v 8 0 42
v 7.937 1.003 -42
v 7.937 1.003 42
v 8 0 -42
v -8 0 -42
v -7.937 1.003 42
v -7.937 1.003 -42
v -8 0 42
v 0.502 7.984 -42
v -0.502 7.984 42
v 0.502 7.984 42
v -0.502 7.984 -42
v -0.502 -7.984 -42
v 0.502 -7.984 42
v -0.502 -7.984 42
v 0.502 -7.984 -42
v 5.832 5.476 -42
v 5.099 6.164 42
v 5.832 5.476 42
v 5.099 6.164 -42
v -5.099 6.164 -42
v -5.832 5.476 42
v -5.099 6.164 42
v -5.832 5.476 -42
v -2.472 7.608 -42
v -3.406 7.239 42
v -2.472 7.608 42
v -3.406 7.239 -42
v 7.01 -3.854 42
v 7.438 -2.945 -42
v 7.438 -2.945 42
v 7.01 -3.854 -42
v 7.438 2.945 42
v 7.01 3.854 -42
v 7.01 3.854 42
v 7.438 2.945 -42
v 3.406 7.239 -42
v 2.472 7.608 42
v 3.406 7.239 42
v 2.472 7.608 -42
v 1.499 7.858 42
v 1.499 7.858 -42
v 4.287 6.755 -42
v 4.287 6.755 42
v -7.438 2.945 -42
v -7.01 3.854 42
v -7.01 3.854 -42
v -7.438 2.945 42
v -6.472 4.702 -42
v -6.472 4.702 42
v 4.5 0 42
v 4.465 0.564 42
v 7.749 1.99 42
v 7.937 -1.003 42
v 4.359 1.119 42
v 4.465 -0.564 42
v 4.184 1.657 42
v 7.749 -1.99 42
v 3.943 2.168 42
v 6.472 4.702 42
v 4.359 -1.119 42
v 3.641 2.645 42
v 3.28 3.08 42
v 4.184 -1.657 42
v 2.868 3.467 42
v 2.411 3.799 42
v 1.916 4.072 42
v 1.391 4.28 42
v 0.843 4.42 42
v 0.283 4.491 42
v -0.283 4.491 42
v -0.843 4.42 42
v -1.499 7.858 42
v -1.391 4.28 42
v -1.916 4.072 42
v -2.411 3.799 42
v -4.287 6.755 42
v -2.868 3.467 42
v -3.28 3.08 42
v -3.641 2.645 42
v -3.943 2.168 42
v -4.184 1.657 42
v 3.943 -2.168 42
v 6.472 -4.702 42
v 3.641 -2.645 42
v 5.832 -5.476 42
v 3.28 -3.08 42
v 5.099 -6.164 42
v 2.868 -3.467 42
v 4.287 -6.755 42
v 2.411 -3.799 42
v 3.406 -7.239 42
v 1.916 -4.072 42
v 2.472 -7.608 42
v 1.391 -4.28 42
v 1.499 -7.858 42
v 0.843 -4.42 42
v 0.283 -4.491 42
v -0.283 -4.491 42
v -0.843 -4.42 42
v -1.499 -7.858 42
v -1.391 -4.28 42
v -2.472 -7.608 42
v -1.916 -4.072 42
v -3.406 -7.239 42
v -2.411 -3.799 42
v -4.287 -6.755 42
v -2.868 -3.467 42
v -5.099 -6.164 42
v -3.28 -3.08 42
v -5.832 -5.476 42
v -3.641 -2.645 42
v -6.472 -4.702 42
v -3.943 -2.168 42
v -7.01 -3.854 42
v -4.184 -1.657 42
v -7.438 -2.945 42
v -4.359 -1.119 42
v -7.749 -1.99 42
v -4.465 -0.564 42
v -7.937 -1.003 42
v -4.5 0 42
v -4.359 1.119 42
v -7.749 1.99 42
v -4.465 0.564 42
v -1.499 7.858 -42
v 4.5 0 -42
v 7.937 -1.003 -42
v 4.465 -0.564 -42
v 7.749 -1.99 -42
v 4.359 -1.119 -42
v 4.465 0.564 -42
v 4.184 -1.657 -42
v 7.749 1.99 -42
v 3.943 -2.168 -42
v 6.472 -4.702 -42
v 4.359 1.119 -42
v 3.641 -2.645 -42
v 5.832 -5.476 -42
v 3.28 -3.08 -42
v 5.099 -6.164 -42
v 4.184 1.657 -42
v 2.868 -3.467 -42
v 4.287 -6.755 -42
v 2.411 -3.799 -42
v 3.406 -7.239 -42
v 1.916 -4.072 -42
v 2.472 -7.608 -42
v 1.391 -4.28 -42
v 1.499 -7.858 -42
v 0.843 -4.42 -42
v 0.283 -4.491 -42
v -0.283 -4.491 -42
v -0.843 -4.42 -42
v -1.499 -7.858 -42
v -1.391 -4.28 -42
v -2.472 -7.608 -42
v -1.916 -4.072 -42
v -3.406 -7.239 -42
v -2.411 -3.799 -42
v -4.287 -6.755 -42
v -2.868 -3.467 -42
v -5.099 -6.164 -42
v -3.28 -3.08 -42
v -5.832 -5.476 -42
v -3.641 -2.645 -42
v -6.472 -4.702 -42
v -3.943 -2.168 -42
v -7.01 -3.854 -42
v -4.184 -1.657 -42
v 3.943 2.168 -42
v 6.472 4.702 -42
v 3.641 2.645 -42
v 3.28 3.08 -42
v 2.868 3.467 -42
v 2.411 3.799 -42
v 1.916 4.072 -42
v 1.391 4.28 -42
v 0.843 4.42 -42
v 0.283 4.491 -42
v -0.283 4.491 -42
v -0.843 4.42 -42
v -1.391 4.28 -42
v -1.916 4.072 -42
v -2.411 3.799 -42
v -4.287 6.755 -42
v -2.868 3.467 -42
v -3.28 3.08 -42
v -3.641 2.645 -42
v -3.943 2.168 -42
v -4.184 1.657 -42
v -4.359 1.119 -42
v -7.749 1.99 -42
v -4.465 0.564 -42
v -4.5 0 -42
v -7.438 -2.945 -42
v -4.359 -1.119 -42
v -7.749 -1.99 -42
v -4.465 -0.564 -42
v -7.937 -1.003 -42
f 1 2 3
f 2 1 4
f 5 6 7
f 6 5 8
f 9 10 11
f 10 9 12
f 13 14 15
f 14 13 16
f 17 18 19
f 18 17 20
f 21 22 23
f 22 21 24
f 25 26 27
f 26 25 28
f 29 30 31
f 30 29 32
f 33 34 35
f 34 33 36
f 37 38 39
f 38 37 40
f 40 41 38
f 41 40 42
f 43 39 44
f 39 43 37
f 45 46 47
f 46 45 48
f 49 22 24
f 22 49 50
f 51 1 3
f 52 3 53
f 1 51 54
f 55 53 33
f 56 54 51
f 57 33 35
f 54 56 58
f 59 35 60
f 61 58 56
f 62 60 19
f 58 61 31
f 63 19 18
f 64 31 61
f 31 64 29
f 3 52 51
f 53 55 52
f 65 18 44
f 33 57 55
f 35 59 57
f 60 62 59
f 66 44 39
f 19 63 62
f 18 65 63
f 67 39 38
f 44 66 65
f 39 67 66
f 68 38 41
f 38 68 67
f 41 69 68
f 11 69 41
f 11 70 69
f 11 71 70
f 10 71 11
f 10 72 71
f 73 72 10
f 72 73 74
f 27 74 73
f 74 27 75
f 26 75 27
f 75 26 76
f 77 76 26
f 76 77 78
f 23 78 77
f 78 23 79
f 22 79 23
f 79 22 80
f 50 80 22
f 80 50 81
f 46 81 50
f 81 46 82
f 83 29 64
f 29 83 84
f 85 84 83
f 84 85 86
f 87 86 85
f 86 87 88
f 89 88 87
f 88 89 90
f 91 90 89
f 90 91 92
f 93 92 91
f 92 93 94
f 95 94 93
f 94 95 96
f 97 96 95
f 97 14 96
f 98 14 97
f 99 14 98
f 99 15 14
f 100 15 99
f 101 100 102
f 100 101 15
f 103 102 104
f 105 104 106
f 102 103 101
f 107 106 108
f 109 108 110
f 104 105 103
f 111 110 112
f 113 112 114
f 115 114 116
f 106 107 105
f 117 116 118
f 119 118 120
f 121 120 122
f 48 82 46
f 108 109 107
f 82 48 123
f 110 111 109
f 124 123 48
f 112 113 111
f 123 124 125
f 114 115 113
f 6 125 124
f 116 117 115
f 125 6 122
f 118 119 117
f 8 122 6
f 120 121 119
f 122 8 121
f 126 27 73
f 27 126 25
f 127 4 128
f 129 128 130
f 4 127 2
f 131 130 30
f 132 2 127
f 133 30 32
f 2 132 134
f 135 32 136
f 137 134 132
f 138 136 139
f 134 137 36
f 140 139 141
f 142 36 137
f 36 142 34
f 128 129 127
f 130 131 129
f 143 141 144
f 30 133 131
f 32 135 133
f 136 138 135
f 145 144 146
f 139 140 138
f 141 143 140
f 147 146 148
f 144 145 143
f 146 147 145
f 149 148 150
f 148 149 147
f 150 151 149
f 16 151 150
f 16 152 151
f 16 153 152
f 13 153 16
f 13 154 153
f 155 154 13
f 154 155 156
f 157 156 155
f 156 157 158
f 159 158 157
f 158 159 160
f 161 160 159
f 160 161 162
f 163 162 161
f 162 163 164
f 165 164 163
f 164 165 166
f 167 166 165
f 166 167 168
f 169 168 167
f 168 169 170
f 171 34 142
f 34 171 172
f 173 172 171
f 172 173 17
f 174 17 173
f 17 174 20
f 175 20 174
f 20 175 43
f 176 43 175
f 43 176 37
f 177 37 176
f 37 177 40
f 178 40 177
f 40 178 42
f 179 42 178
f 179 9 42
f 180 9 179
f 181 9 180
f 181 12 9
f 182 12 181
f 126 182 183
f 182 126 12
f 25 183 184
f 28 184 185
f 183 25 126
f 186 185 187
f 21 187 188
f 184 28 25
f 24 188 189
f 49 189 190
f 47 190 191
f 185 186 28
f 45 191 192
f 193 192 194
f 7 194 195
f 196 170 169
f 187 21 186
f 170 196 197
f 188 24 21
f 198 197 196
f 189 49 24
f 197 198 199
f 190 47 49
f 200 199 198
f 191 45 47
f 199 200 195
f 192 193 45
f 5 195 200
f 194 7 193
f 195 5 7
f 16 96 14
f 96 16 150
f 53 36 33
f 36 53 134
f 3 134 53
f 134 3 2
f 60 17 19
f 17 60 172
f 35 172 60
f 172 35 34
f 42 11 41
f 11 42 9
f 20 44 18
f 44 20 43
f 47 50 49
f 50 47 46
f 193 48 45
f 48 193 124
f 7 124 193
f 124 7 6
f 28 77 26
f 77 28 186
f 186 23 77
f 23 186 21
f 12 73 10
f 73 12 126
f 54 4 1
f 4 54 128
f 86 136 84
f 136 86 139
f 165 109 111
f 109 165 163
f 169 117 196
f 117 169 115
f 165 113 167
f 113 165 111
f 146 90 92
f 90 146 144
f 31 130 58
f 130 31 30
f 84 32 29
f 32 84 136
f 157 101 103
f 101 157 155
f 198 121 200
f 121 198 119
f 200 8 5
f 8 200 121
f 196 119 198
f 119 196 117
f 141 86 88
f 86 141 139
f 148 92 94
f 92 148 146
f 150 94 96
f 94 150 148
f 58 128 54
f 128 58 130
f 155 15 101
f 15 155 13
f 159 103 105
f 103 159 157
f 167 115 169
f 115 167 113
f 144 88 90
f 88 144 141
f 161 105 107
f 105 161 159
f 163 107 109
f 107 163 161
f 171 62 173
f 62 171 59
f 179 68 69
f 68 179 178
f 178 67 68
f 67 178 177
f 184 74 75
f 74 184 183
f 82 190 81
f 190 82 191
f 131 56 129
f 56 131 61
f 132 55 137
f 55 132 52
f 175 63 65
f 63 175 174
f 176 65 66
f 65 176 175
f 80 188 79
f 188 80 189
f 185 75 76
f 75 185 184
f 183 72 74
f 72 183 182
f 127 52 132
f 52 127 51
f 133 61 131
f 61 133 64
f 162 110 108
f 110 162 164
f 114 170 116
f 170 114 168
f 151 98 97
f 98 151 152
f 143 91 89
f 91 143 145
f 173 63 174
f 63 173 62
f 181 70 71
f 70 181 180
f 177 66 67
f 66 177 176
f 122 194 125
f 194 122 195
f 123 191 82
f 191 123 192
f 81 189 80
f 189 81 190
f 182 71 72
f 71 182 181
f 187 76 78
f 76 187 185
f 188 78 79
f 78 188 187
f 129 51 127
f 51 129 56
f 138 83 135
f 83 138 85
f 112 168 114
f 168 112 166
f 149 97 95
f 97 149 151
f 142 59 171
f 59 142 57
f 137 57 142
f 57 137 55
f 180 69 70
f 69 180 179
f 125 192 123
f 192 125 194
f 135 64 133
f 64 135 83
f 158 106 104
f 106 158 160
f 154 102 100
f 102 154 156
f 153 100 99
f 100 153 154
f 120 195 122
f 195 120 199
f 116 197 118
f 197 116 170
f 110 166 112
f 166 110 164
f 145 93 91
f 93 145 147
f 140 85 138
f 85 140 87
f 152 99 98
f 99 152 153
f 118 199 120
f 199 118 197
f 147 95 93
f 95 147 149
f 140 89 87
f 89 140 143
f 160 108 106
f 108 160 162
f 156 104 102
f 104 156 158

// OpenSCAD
$fn = 50;


difference() {
	union() {
		translate(v = [0, 0, -42.0000000000]) {
			cylinder(h = 84, r = 8.0000000000);
		}
	}
	union() {
		translate(v = [0, 0, -100.0000000000]) {
			cylinder(h = 200, r = 4.5000000000);
		}
	}
}
